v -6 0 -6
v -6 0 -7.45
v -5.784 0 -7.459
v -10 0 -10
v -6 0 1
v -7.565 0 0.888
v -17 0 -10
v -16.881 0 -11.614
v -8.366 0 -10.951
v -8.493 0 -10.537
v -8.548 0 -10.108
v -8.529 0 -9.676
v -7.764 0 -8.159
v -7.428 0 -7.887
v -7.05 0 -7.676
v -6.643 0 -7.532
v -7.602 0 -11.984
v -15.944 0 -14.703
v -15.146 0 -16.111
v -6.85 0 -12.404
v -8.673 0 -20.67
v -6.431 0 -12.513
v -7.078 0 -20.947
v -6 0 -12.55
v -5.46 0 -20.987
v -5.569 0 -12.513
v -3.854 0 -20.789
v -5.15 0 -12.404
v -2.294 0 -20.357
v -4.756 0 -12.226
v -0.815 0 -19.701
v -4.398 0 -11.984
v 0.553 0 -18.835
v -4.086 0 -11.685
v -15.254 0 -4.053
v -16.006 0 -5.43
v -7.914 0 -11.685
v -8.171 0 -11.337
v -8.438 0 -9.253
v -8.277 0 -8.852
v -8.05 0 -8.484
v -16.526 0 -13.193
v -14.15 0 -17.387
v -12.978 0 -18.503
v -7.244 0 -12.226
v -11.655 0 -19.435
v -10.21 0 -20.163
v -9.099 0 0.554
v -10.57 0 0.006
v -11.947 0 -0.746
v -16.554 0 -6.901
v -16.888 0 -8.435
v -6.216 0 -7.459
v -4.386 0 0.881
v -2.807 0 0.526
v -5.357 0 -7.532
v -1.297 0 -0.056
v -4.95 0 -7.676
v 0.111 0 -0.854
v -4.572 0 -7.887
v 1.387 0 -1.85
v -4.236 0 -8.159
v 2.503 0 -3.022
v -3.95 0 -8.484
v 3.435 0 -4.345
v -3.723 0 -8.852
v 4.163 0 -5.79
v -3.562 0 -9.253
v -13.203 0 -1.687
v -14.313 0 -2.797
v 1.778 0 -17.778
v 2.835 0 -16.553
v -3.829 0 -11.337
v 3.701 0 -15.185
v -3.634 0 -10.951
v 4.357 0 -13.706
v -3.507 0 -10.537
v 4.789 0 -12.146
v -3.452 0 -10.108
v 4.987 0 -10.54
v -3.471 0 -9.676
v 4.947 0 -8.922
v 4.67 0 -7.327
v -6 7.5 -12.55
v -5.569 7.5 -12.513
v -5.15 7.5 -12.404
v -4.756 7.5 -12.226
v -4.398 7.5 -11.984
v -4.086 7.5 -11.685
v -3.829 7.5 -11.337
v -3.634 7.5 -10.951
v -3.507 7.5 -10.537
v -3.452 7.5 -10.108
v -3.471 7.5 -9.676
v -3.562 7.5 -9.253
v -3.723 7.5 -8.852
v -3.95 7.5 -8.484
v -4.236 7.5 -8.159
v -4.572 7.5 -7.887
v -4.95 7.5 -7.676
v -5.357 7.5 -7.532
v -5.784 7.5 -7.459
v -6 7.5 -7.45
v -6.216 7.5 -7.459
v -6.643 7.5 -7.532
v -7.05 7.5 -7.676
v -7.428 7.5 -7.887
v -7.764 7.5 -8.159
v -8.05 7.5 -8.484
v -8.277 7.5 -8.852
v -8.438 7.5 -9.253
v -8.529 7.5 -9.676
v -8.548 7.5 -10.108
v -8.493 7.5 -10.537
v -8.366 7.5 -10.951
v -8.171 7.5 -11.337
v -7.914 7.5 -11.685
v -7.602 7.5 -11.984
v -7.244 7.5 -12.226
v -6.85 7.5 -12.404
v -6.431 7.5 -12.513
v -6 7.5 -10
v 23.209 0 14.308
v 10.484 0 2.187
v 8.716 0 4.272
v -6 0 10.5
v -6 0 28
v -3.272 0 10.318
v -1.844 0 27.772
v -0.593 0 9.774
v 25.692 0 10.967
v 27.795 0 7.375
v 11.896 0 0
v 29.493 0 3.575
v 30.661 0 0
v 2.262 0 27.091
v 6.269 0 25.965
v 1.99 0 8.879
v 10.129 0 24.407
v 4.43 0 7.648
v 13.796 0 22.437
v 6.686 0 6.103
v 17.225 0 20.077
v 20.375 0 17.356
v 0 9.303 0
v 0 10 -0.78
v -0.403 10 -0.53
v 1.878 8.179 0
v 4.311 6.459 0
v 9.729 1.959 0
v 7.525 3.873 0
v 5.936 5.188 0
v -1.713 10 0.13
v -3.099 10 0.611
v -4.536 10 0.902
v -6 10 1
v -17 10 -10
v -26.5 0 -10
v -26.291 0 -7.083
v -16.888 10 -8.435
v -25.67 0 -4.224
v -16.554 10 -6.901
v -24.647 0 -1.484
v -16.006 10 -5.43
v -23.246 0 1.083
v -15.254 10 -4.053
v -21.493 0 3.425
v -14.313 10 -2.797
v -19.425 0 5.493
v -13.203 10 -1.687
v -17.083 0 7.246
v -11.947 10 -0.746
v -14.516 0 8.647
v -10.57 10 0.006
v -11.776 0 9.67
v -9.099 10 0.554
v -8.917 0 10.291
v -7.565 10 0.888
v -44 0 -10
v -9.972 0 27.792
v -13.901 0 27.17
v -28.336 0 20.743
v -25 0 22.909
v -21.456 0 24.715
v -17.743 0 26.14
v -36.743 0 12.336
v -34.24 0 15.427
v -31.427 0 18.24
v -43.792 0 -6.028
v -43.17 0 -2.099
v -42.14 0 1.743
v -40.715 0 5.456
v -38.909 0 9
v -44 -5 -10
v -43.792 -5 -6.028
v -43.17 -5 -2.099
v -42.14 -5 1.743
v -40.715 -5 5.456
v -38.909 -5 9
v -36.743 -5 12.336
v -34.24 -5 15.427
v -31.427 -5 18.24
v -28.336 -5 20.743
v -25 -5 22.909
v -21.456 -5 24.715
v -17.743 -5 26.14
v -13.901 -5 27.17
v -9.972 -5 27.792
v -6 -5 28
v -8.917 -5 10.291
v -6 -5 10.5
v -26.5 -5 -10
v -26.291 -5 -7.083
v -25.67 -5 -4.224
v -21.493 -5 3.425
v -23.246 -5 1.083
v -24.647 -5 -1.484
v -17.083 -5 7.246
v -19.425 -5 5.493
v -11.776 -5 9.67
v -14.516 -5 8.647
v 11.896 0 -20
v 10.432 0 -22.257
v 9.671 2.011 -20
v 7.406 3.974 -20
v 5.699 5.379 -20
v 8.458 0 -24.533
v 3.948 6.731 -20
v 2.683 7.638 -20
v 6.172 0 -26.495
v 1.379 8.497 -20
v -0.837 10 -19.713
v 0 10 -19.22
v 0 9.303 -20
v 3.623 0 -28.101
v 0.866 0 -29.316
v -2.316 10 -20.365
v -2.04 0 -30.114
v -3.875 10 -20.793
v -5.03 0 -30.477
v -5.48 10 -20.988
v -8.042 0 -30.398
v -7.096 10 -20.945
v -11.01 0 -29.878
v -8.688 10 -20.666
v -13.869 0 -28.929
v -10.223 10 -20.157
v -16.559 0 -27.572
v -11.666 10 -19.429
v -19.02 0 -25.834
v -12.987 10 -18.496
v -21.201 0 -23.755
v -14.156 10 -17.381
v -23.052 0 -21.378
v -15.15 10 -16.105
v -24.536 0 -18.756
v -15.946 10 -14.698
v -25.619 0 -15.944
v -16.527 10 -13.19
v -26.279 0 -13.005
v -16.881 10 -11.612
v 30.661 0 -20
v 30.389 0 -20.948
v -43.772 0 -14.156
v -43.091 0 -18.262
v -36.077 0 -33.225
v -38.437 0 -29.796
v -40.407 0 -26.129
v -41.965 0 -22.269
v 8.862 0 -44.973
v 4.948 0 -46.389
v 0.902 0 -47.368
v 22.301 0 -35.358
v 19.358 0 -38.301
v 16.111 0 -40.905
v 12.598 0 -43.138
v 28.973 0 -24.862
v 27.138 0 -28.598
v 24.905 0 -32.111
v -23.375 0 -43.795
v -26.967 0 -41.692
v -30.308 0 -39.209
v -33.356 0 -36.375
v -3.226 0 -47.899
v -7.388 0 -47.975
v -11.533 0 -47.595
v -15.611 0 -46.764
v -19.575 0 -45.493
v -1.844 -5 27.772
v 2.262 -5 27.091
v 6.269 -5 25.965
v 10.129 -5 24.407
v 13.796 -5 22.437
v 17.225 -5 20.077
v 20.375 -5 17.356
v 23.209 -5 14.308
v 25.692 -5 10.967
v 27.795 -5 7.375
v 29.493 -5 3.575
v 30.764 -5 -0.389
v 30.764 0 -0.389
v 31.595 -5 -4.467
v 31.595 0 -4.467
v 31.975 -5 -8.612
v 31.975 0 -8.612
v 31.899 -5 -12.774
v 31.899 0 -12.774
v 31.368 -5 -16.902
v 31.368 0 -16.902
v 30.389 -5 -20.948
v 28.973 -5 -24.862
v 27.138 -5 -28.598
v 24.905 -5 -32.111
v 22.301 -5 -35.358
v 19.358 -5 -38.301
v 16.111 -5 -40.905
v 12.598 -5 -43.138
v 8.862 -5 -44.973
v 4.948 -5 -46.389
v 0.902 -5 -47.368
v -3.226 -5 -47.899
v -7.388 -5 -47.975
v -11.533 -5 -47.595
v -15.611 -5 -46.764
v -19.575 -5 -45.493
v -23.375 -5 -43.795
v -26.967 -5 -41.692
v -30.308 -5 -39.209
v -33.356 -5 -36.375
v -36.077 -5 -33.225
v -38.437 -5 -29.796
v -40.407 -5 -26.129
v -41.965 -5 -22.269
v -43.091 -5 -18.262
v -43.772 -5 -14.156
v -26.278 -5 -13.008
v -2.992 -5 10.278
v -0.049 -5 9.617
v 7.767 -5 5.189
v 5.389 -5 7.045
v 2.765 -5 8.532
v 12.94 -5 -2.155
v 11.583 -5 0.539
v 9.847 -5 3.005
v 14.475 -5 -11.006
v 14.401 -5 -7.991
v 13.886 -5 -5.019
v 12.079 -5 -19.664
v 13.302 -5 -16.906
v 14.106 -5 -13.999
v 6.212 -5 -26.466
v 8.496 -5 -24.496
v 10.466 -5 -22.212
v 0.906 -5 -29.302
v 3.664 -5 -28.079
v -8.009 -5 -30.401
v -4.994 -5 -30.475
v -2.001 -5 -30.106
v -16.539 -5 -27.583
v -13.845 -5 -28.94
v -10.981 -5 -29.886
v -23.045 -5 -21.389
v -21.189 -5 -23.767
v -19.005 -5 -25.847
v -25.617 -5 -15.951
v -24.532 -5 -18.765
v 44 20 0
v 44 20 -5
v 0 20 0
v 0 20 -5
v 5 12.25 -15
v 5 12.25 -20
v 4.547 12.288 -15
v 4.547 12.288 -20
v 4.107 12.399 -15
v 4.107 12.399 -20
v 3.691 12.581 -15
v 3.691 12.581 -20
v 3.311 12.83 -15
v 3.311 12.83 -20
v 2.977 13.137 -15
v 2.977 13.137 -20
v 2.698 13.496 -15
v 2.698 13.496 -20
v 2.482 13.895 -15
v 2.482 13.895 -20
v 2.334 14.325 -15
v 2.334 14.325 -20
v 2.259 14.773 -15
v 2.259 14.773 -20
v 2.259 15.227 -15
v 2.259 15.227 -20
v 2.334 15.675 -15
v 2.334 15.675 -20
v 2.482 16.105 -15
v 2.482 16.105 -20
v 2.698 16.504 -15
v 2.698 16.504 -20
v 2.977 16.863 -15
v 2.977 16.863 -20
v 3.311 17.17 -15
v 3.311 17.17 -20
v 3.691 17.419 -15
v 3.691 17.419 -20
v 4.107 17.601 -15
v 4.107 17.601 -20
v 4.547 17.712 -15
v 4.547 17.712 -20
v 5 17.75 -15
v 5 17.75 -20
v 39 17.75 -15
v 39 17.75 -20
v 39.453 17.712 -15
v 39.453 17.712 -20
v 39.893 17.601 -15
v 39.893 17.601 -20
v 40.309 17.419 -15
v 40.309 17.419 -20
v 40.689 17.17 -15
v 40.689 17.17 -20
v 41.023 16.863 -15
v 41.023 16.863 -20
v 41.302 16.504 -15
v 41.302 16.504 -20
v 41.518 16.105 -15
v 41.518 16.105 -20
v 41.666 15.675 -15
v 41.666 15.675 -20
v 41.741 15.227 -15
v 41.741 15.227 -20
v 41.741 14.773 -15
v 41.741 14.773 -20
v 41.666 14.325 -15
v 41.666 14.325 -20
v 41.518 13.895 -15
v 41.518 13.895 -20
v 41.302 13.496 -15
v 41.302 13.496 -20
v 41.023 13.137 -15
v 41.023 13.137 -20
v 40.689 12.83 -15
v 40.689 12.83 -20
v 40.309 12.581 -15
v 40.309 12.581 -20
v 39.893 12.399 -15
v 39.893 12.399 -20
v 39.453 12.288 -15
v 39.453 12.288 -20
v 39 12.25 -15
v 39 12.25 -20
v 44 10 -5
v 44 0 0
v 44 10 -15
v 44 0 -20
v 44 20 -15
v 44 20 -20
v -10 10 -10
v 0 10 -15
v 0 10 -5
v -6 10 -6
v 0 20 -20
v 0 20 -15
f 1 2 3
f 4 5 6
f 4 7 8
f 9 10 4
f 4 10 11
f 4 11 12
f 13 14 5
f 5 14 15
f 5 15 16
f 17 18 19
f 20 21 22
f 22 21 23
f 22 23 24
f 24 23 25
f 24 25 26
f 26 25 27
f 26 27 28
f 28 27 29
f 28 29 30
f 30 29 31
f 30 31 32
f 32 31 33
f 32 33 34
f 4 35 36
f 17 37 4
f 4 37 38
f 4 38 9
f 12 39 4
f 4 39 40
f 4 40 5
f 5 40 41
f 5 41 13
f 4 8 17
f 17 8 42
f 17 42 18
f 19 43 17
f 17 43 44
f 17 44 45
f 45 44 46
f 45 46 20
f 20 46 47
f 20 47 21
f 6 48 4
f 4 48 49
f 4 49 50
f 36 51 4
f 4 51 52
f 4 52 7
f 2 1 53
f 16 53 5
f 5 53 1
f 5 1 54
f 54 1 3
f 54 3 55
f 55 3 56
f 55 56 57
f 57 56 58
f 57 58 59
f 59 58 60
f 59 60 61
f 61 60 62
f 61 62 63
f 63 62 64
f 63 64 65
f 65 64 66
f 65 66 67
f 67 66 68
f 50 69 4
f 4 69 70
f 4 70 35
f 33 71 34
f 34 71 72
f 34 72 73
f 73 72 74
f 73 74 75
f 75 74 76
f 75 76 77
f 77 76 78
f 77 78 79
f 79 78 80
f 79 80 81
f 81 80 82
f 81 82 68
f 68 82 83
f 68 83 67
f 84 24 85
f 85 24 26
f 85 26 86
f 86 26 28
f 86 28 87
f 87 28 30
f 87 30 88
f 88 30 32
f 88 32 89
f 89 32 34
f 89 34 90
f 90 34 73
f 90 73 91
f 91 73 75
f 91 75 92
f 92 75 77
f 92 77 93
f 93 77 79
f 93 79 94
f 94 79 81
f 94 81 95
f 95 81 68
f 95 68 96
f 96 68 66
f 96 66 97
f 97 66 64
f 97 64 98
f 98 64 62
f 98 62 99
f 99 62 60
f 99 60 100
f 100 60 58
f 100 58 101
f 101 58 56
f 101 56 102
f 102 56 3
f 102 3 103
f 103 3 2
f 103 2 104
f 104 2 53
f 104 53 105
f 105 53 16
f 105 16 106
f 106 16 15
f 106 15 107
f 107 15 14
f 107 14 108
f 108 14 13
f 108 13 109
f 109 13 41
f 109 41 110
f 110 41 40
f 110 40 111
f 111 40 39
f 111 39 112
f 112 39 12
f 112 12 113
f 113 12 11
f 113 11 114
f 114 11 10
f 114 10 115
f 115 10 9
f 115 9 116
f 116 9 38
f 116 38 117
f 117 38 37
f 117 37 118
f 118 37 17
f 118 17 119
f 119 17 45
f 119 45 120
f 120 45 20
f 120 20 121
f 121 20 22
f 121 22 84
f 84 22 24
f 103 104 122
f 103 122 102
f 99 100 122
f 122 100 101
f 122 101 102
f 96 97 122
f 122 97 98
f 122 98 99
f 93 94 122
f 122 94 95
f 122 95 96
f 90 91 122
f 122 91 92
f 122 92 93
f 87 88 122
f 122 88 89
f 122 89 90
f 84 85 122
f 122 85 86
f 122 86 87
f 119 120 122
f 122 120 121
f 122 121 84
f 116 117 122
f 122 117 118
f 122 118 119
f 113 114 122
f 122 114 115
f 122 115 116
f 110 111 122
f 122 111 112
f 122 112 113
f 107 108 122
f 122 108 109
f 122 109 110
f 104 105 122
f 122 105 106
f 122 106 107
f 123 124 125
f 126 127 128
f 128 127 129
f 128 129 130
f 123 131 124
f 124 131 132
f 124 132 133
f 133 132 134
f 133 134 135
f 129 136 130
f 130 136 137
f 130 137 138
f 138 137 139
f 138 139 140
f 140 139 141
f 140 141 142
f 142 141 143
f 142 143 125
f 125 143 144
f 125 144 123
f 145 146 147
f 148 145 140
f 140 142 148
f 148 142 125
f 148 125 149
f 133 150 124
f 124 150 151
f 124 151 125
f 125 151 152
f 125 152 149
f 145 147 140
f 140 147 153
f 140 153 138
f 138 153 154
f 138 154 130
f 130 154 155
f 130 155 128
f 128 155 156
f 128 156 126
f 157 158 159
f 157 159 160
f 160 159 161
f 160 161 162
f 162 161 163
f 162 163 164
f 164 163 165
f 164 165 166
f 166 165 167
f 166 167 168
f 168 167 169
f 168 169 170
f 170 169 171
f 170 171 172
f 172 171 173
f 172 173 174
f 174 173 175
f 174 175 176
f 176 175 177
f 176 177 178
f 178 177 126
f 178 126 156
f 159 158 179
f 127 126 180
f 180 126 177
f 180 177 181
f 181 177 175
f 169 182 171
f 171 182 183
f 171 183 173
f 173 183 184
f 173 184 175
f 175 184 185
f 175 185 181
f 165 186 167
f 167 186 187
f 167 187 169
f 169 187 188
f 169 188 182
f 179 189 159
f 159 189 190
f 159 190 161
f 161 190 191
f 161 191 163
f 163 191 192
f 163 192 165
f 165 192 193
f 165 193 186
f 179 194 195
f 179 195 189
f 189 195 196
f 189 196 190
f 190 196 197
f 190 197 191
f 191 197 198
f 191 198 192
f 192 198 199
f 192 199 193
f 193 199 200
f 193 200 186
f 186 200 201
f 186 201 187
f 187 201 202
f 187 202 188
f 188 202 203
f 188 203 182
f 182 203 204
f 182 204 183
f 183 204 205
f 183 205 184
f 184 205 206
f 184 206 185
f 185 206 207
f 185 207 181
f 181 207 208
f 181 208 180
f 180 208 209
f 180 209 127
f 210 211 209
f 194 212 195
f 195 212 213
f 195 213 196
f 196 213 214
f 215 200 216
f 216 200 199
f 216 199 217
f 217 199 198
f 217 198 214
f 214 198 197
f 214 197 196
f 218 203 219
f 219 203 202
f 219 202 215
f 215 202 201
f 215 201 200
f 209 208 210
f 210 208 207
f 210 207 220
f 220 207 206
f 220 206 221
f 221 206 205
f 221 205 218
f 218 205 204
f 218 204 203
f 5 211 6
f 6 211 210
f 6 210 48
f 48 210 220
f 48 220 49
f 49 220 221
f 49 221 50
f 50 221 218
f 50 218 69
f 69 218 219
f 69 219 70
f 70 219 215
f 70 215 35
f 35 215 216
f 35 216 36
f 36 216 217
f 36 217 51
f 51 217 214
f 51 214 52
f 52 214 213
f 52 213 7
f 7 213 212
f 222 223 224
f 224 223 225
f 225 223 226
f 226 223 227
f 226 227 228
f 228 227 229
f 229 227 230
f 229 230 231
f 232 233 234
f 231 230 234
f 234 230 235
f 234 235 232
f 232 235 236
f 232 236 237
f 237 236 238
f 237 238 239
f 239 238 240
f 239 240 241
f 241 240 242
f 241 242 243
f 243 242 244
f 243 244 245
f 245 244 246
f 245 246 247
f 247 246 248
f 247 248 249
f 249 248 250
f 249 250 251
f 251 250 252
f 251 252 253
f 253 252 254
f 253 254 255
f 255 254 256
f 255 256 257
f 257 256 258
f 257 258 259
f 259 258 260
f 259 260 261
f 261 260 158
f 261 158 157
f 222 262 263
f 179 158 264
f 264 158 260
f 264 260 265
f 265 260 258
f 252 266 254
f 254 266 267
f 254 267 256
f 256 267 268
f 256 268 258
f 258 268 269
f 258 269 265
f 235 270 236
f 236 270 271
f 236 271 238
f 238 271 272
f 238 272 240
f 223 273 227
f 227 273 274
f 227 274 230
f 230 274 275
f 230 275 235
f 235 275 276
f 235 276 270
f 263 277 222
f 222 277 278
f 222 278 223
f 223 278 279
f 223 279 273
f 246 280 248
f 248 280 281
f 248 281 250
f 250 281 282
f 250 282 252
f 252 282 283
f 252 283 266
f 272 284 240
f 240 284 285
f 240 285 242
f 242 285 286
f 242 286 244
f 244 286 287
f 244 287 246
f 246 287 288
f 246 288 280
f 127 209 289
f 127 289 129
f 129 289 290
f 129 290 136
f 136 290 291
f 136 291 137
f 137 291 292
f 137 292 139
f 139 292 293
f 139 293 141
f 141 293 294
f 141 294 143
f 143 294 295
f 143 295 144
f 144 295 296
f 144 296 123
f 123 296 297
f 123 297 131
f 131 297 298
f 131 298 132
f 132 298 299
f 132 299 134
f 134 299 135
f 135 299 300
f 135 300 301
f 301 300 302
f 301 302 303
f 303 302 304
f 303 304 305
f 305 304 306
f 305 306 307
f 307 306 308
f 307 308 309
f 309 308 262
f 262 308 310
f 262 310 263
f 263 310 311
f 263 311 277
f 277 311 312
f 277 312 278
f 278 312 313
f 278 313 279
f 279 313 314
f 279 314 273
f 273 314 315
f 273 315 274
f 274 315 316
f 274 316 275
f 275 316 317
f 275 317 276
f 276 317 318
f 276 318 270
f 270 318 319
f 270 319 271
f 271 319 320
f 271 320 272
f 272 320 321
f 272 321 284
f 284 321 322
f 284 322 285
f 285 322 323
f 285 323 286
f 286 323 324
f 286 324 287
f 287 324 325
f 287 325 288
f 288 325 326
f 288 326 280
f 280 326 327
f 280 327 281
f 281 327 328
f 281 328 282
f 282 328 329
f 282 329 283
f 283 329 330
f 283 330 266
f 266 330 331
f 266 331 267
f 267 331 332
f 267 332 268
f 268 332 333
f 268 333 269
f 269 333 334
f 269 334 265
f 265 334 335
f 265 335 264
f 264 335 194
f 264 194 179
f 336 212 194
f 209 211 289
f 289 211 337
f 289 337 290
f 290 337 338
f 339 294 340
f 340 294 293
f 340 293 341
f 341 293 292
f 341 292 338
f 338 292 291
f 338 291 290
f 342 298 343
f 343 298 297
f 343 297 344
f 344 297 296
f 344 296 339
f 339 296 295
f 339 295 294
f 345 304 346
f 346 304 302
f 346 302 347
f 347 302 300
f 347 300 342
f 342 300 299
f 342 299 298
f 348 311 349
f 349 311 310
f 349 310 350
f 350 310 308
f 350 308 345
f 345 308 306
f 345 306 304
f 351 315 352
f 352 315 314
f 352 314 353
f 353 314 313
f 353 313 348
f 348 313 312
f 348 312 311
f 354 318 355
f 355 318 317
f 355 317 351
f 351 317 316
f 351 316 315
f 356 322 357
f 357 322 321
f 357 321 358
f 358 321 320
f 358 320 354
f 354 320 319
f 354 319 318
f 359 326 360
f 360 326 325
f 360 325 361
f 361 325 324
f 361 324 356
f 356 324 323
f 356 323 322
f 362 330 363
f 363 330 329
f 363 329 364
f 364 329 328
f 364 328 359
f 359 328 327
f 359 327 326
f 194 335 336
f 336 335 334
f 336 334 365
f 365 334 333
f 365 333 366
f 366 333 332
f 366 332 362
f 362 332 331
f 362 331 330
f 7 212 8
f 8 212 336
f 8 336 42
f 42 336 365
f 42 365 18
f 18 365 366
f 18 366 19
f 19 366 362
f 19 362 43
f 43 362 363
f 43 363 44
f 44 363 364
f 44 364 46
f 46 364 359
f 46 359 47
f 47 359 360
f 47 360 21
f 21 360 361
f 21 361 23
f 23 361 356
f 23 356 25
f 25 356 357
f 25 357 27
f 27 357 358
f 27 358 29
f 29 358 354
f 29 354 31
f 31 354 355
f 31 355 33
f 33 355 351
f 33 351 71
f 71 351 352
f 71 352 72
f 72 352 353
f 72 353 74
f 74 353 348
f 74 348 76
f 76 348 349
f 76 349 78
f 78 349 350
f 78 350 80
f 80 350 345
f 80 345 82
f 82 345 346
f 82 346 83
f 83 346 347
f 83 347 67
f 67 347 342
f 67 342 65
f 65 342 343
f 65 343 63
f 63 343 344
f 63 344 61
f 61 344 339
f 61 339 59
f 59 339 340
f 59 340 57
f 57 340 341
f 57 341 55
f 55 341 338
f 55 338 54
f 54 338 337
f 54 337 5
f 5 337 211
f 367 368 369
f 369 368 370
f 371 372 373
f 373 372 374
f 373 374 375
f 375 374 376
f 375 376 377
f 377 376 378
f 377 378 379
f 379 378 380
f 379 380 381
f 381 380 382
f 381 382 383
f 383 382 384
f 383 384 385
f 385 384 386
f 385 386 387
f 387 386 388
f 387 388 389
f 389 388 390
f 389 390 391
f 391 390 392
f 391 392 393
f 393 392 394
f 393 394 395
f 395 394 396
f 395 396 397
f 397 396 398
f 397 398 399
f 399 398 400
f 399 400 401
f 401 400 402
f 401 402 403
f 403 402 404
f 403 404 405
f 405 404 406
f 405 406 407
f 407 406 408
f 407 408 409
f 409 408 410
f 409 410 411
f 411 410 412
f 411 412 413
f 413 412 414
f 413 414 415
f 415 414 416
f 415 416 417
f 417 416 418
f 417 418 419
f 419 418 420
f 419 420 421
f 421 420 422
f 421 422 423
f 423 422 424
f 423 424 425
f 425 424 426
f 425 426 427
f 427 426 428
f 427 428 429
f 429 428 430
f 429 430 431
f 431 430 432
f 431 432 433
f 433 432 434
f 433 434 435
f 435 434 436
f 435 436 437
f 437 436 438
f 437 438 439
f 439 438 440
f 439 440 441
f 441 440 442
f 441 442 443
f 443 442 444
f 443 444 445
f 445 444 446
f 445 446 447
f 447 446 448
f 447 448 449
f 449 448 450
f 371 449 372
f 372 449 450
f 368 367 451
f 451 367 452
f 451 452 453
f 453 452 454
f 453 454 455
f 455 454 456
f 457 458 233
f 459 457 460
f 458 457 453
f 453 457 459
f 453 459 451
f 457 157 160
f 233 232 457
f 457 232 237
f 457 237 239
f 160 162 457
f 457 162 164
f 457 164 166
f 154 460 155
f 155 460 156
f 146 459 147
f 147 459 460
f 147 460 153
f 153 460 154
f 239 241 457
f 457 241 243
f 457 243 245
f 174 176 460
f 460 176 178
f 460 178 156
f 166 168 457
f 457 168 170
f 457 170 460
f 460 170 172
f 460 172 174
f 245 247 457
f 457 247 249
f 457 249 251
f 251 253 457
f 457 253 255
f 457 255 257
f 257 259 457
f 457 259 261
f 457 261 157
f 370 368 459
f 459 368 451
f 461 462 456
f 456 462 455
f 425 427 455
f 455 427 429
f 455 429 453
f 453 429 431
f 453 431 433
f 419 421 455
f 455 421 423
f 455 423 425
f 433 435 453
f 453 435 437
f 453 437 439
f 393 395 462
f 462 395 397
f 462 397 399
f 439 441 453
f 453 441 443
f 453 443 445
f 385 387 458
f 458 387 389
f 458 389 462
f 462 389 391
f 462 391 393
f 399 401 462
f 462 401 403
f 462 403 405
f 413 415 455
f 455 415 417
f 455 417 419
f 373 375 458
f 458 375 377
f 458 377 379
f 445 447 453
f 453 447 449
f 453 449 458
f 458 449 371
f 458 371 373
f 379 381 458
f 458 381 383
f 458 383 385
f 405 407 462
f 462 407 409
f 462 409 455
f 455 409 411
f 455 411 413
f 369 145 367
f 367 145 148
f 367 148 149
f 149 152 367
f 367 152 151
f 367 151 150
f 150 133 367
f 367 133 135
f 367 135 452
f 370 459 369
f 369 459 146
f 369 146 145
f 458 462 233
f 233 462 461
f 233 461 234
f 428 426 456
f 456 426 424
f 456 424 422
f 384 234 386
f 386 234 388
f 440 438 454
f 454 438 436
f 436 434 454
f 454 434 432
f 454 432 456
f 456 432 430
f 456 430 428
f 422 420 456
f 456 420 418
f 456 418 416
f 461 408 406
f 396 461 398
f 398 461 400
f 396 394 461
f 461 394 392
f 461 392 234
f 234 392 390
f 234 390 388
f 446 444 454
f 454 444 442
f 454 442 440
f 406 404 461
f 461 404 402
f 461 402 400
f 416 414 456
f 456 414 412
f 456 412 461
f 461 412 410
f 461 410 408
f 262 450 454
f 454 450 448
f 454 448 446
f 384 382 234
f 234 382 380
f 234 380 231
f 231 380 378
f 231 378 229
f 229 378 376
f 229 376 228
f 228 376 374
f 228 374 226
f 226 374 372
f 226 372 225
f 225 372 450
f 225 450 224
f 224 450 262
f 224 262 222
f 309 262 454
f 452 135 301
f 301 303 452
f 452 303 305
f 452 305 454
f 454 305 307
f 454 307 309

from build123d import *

# Parameters (mm, degrees)
SKETCH1_R               = 2.55
BOSS_EXTRUDE1_DEPTH     = 7.5
BOSS_EXTRUDE2_DEPTH     = 2.5
SKETCH3_W               = 44
SKETCH3_H               = 5
BOSS_EXTRUDE3_DEPTH     = 10
CUT_EXTRUDE1_DEPTH      = 53.306787322
CUT_EXTRUDE1_DEPTH_BACK = 5


with BuildPart() as part:
    # Sketch1 → Boss-Extrude1 (new body)
    with BuildSketch(Plane(origin=(0, 0, 0), x_dir=(1, 0, 0), z_dir=(0, 1, 0))):
        with BuildLine():
            Line((0, 14), (-6, 14))
            ThreePointArc((-6, 14), (-10, 10), (-6, 6))
            Line((-6, 6), (0, 6))
            Line((0, 6), (0, 0))
            Line((0, 0), (44, 0))
            Line((44, 0), (44, 20))
            Line((44, 20), (0, 20))
            Line((0, 20), (0, 14))
        make_face()
        with Locations((-6, 10)):
            Circle(SKETCH1_R, mode=Mode.SUBTRACT)
    extrude(amount=BOSS_EXTRUDE1_DEPTH)

    # Sketch2 → Boss-Extrude2 (add)
    with BuildSketch(Plane(origin=(0, 7.5, 0), x_dir=(1, 0, 0), z_dir=(0, 1, 0))):
        with BuildLine():
            Line((0, 0), (44, 0))
            Line((44, 0), (44, 20))
            Line((44, 20), (0, 20))
            Line((0, 20), (0, 14))
            Line((0, 14), (-6, 14))
            ThreePointArc((-6, 14), (-10, 10), (-6, 6))
            Line((-6, 6), (0, 6))
            Line((0, 6), (0, 0))
        make_face()
    extrude(amount=BOSS_EXTRUDE2_DEPTH)

    # Sketch3 → Boss-Extrude3 (add)
    with BuildSketch(Plane(origin=(0, 10, 0), x_dir=(1, 0, 0), z_dir=(0, 1, 0))):
        with Locations((22, 2.5)):
            Rectangle(SKETCH3_W, SKETCH3_H)
        with Locations((22, 17.5)):
            Rectangle(SKETCH3_W, SKETCH3_H)
    extrude(amount=BOSS_EXTRUDE3_DEPTH)

    # Sketch4 → Cut-Extrude1 (cut, two sides: drawn at the far end of the back side and taken through both)
    with BuildSketch(Plane(origin=(0, 0, -20), x_dir=(-1, 0, 0), z_dir=(0, 0, -1)).offset(-CUT_EXTRUDE1_DEPTH_BACK)):
        with BuildLine():
            Line((-5, 17.75), (-39, 17.75))
            ThreePointArc((-39, 17.75), (-41.75, 15), (-39, 12.25))
            Line((-39, 12.25), (-5, 12.25))
            ThreePointArc((-5, 12.25), (-2.25, 15), (-5, 17.75))
        make_face()
    extrude(amount=CUT_EXTRUDE1_DEPTH + CUT_EXTRUDE1_DEPTH_BACK, mode=Mode.SUBTRACT)

    # Sweep1: sweep along a curve in space
    with BuildLine() as sweep1_path:
        ThreePointArc((-6, 0, -7.45), (-4.196877708, 0, -8.196877708), (-3.45, 0, -10))
        ThreePointArc((-3.45, 0, -10), (-4.196877708, 0, -11.803122292), (-6, 0, -12.55))
        ThreePointArc((-6, 0, -12.55), (-7.803122292, 0, -11.803122292), (-8.55, 0, -10))
        ThreePointArc((-8.55, 0, -10), (-7.803122292, 0, -8.196877708), (-6, 0, -7.45))
    # 3DSketch1 → Sweep1 (sweep)
    with BuildSketch(Plane(origin=(-8.55, 0, -10), x_dir=(-0.9901993201277149, -0.13966139917175113, 0), z_dir=(0, 0, -1))):
        Polygon((0, 0), (-1.396613992, 9.901993201), (6.970570263, 11.082132024), (17.774077796, 2.506922115), (35.102565899, 4.950996601), (35.800872894, 0), (18.472384792, -2.444074486), (8.367184255, 1.180138823), align=None)
    sweep(path=sweep1_path.line)


solid = part.part
